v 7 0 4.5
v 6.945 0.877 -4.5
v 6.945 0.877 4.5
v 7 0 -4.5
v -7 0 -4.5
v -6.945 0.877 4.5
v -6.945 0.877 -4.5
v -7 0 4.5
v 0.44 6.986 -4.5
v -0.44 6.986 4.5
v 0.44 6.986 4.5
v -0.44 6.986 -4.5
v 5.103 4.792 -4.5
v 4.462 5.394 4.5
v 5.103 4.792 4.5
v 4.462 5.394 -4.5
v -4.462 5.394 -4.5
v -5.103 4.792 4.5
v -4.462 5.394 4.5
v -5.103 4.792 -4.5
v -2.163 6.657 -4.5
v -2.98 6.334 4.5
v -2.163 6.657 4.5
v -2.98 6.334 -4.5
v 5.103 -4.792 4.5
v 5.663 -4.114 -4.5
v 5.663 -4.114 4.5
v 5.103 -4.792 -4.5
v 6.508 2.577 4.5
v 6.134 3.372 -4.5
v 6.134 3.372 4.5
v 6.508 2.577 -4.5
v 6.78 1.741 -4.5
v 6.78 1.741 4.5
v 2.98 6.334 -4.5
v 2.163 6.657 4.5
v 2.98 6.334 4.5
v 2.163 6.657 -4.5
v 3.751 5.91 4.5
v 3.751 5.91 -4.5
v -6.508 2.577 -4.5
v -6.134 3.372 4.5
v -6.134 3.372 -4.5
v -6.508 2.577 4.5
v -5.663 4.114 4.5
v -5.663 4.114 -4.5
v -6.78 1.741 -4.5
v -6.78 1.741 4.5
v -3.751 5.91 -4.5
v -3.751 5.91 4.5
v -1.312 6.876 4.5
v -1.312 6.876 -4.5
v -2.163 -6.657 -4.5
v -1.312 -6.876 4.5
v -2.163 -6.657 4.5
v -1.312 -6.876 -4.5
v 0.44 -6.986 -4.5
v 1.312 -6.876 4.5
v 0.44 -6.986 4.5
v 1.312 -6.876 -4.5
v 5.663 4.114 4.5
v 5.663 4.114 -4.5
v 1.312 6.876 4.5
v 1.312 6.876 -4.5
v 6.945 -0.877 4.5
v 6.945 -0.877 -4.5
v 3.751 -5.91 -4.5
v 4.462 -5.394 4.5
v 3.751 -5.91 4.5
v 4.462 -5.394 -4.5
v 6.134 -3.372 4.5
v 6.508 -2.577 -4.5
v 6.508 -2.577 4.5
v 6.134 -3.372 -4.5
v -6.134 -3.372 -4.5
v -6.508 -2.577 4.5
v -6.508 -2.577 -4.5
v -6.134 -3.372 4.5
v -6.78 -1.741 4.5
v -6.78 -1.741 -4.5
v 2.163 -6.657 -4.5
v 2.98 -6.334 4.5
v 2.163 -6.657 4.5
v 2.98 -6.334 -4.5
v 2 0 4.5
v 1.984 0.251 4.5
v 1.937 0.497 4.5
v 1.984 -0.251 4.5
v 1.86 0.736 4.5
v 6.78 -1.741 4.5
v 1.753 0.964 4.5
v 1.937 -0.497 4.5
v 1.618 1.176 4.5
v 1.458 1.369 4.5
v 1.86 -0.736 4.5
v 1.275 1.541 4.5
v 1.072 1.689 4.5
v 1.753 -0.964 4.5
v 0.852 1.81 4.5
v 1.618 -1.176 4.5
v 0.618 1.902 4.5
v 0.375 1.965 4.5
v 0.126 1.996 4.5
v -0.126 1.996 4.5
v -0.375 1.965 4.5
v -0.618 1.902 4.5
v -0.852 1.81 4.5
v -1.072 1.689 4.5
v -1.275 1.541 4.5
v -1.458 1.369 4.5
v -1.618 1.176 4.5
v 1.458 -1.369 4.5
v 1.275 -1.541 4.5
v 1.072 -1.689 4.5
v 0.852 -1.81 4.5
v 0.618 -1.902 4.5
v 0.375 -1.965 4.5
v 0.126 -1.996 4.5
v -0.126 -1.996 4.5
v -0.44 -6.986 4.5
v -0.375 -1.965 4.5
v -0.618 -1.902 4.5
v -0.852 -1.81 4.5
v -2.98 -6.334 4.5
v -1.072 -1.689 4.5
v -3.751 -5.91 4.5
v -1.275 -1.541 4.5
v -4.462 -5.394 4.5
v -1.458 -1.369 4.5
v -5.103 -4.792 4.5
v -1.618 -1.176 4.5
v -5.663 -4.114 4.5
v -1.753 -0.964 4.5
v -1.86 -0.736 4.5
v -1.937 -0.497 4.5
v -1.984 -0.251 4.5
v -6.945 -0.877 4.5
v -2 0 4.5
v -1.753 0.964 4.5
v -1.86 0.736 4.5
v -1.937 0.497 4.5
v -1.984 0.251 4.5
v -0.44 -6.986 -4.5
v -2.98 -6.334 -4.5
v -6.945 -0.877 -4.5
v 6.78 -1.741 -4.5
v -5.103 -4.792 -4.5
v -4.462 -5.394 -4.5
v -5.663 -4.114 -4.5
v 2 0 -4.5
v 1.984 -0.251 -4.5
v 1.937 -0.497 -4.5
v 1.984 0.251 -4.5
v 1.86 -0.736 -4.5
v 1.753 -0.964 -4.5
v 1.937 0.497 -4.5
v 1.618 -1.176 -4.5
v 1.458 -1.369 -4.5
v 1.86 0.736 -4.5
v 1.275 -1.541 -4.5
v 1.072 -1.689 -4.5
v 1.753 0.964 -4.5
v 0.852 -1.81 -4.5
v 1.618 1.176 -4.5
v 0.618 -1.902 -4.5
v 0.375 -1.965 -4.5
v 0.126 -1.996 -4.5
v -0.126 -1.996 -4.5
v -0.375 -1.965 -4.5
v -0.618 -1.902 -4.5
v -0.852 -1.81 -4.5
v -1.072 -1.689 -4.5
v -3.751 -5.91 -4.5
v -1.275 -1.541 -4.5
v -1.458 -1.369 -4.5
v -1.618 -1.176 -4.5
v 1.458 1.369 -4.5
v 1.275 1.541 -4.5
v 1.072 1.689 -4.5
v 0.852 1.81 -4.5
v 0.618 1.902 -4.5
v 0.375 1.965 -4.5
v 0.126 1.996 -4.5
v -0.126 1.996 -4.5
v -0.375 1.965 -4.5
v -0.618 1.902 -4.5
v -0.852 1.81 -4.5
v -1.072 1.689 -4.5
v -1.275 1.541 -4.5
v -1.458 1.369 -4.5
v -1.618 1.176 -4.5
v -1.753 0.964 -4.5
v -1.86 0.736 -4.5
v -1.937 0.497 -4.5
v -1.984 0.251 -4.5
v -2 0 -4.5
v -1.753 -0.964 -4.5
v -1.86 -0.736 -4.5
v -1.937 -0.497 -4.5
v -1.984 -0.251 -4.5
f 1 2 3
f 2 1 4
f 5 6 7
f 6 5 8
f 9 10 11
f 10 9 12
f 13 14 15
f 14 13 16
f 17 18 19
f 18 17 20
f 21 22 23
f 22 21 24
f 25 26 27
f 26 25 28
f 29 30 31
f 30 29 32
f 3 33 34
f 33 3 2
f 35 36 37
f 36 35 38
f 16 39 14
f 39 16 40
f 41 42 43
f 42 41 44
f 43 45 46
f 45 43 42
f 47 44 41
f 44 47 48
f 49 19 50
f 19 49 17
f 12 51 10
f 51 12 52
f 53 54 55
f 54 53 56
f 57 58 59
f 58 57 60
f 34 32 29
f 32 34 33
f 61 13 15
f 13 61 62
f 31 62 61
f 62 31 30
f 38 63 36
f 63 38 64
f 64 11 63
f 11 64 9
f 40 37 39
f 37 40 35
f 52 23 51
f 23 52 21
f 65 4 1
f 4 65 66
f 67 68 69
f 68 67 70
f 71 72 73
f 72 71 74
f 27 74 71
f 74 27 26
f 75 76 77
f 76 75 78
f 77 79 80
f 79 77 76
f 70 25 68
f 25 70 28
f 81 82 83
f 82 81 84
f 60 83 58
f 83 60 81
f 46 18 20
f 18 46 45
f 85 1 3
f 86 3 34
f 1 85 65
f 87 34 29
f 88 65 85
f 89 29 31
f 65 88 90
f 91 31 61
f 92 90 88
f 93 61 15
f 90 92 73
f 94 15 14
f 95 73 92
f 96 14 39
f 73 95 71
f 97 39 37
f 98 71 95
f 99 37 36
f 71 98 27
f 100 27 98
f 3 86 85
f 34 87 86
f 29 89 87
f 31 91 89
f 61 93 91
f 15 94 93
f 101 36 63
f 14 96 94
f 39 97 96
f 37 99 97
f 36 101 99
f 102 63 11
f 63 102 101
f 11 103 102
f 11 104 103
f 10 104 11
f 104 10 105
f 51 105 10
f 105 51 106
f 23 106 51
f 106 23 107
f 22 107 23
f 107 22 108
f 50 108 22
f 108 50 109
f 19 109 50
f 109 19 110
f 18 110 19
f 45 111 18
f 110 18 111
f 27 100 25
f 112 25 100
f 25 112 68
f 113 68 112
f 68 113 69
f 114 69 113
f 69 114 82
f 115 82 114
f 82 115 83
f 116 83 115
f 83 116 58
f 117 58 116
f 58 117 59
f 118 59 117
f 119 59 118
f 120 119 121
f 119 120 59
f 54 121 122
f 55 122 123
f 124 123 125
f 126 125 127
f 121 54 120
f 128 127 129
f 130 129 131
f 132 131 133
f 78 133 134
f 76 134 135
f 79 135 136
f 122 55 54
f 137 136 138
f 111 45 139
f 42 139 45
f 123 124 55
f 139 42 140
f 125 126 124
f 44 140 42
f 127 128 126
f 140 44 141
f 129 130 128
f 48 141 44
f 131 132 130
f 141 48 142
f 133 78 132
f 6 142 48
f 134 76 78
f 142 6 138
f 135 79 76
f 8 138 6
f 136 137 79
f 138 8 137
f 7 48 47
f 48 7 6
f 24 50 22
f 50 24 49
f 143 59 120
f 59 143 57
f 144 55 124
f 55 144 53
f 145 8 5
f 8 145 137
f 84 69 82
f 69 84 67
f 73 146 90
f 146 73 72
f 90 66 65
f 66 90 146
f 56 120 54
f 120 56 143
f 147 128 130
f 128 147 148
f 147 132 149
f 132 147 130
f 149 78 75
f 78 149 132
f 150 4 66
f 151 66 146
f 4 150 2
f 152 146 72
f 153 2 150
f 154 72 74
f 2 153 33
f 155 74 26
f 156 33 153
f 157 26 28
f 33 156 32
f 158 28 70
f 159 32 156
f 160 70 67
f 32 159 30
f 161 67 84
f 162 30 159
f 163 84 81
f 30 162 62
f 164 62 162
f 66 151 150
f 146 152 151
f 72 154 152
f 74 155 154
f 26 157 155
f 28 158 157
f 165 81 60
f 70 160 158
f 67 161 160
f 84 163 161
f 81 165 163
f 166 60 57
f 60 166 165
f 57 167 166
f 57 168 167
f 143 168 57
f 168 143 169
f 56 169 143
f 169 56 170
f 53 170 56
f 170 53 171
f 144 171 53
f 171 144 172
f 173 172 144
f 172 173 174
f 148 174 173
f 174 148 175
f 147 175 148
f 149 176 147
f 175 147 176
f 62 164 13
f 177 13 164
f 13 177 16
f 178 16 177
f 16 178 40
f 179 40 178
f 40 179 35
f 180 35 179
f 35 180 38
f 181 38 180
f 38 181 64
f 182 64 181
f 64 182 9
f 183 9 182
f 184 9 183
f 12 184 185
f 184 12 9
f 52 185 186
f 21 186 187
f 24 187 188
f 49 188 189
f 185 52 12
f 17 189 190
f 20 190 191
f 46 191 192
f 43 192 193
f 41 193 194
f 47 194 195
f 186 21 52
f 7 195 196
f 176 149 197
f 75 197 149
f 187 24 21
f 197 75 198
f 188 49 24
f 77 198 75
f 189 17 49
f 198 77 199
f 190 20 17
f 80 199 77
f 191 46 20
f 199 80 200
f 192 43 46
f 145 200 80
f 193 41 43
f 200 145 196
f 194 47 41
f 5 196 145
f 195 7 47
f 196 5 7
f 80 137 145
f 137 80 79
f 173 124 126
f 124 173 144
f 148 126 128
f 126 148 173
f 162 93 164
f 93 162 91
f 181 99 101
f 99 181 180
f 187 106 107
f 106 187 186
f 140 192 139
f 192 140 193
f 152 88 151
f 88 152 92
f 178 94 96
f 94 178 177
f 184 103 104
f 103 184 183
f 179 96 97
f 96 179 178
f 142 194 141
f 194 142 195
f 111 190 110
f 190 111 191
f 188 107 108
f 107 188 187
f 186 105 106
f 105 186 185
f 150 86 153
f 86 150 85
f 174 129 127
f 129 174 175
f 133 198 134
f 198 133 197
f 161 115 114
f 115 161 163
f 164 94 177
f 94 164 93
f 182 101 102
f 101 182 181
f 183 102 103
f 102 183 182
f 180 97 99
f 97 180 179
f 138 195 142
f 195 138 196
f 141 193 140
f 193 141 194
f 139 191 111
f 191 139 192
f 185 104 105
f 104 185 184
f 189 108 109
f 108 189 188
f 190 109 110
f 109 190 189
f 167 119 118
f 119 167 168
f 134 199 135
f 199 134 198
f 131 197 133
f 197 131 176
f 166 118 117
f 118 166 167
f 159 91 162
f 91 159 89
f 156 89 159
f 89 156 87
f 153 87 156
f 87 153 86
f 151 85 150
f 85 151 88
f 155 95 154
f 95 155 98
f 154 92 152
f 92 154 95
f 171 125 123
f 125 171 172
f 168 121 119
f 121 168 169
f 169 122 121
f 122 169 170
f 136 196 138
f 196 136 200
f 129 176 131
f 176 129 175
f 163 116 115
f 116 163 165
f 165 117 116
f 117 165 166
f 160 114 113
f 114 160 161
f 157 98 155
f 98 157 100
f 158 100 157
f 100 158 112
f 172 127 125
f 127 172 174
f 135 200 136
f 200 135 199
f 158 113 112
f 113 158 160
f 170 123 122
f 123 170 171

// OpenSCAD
$fn = 50;


difference() {
	union() {
		translate(v = [0, 0, -4.5000000000]) {
			cylinder(h = 9, r = 7.0000000000);
		}
	}
	union() {
		translate(v = [0, 0, -100.0000000000]) {
			cylinder(h = 200, r = 2.0000000000);
		}
	}
}
